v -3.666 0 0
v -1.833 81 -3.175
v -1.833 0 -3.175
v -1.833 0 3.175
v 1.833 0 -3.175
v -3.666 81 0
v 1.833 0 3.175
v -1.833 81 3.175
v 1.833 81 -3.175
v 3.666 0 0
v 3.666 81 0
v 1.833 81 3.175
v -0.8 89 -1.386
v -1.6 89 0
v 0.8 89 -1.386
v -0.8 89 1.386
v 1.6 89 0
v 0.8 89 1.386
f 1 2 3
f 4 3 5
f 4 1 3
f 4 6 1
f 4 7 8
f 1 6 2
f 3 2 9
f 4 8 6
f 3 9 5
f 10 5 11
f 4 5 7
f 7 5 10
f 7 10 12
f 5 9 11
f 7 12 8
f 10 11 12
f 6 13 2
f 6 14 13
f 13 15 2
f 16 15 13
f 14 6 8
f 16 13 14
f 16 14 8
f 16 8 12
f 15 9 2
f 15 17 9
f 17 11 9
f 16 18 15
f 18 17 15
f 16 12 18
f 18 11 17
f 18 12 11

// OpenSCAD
// Quarter-inch drive bit
// Representative Wera 851/4 Z PH2 bit, 89 mm long with a quarter-inch drive. The tapered tip is simplified and its length and end diameter are estimated.
// Units: mm
$fn = 64;
union() {
    // Hexagonal shank
    color([0.7176, 0.7216, 0.7059])
    translate([0, 0, 0]) rotate([-90, 0, 0])
        cylinder(h=81, r1=3.6661742093541236, r2=3.6661742093541236, $fn=6);
    // Phillips tip
    color([0.5882, 0.5922, 0.5765])
    translate([0, 81, 0]) rotate([-90, 0, 0])
        cylinder(h=8, r1=3.6661742093541236, r2=1.6, $fn=6);
}
